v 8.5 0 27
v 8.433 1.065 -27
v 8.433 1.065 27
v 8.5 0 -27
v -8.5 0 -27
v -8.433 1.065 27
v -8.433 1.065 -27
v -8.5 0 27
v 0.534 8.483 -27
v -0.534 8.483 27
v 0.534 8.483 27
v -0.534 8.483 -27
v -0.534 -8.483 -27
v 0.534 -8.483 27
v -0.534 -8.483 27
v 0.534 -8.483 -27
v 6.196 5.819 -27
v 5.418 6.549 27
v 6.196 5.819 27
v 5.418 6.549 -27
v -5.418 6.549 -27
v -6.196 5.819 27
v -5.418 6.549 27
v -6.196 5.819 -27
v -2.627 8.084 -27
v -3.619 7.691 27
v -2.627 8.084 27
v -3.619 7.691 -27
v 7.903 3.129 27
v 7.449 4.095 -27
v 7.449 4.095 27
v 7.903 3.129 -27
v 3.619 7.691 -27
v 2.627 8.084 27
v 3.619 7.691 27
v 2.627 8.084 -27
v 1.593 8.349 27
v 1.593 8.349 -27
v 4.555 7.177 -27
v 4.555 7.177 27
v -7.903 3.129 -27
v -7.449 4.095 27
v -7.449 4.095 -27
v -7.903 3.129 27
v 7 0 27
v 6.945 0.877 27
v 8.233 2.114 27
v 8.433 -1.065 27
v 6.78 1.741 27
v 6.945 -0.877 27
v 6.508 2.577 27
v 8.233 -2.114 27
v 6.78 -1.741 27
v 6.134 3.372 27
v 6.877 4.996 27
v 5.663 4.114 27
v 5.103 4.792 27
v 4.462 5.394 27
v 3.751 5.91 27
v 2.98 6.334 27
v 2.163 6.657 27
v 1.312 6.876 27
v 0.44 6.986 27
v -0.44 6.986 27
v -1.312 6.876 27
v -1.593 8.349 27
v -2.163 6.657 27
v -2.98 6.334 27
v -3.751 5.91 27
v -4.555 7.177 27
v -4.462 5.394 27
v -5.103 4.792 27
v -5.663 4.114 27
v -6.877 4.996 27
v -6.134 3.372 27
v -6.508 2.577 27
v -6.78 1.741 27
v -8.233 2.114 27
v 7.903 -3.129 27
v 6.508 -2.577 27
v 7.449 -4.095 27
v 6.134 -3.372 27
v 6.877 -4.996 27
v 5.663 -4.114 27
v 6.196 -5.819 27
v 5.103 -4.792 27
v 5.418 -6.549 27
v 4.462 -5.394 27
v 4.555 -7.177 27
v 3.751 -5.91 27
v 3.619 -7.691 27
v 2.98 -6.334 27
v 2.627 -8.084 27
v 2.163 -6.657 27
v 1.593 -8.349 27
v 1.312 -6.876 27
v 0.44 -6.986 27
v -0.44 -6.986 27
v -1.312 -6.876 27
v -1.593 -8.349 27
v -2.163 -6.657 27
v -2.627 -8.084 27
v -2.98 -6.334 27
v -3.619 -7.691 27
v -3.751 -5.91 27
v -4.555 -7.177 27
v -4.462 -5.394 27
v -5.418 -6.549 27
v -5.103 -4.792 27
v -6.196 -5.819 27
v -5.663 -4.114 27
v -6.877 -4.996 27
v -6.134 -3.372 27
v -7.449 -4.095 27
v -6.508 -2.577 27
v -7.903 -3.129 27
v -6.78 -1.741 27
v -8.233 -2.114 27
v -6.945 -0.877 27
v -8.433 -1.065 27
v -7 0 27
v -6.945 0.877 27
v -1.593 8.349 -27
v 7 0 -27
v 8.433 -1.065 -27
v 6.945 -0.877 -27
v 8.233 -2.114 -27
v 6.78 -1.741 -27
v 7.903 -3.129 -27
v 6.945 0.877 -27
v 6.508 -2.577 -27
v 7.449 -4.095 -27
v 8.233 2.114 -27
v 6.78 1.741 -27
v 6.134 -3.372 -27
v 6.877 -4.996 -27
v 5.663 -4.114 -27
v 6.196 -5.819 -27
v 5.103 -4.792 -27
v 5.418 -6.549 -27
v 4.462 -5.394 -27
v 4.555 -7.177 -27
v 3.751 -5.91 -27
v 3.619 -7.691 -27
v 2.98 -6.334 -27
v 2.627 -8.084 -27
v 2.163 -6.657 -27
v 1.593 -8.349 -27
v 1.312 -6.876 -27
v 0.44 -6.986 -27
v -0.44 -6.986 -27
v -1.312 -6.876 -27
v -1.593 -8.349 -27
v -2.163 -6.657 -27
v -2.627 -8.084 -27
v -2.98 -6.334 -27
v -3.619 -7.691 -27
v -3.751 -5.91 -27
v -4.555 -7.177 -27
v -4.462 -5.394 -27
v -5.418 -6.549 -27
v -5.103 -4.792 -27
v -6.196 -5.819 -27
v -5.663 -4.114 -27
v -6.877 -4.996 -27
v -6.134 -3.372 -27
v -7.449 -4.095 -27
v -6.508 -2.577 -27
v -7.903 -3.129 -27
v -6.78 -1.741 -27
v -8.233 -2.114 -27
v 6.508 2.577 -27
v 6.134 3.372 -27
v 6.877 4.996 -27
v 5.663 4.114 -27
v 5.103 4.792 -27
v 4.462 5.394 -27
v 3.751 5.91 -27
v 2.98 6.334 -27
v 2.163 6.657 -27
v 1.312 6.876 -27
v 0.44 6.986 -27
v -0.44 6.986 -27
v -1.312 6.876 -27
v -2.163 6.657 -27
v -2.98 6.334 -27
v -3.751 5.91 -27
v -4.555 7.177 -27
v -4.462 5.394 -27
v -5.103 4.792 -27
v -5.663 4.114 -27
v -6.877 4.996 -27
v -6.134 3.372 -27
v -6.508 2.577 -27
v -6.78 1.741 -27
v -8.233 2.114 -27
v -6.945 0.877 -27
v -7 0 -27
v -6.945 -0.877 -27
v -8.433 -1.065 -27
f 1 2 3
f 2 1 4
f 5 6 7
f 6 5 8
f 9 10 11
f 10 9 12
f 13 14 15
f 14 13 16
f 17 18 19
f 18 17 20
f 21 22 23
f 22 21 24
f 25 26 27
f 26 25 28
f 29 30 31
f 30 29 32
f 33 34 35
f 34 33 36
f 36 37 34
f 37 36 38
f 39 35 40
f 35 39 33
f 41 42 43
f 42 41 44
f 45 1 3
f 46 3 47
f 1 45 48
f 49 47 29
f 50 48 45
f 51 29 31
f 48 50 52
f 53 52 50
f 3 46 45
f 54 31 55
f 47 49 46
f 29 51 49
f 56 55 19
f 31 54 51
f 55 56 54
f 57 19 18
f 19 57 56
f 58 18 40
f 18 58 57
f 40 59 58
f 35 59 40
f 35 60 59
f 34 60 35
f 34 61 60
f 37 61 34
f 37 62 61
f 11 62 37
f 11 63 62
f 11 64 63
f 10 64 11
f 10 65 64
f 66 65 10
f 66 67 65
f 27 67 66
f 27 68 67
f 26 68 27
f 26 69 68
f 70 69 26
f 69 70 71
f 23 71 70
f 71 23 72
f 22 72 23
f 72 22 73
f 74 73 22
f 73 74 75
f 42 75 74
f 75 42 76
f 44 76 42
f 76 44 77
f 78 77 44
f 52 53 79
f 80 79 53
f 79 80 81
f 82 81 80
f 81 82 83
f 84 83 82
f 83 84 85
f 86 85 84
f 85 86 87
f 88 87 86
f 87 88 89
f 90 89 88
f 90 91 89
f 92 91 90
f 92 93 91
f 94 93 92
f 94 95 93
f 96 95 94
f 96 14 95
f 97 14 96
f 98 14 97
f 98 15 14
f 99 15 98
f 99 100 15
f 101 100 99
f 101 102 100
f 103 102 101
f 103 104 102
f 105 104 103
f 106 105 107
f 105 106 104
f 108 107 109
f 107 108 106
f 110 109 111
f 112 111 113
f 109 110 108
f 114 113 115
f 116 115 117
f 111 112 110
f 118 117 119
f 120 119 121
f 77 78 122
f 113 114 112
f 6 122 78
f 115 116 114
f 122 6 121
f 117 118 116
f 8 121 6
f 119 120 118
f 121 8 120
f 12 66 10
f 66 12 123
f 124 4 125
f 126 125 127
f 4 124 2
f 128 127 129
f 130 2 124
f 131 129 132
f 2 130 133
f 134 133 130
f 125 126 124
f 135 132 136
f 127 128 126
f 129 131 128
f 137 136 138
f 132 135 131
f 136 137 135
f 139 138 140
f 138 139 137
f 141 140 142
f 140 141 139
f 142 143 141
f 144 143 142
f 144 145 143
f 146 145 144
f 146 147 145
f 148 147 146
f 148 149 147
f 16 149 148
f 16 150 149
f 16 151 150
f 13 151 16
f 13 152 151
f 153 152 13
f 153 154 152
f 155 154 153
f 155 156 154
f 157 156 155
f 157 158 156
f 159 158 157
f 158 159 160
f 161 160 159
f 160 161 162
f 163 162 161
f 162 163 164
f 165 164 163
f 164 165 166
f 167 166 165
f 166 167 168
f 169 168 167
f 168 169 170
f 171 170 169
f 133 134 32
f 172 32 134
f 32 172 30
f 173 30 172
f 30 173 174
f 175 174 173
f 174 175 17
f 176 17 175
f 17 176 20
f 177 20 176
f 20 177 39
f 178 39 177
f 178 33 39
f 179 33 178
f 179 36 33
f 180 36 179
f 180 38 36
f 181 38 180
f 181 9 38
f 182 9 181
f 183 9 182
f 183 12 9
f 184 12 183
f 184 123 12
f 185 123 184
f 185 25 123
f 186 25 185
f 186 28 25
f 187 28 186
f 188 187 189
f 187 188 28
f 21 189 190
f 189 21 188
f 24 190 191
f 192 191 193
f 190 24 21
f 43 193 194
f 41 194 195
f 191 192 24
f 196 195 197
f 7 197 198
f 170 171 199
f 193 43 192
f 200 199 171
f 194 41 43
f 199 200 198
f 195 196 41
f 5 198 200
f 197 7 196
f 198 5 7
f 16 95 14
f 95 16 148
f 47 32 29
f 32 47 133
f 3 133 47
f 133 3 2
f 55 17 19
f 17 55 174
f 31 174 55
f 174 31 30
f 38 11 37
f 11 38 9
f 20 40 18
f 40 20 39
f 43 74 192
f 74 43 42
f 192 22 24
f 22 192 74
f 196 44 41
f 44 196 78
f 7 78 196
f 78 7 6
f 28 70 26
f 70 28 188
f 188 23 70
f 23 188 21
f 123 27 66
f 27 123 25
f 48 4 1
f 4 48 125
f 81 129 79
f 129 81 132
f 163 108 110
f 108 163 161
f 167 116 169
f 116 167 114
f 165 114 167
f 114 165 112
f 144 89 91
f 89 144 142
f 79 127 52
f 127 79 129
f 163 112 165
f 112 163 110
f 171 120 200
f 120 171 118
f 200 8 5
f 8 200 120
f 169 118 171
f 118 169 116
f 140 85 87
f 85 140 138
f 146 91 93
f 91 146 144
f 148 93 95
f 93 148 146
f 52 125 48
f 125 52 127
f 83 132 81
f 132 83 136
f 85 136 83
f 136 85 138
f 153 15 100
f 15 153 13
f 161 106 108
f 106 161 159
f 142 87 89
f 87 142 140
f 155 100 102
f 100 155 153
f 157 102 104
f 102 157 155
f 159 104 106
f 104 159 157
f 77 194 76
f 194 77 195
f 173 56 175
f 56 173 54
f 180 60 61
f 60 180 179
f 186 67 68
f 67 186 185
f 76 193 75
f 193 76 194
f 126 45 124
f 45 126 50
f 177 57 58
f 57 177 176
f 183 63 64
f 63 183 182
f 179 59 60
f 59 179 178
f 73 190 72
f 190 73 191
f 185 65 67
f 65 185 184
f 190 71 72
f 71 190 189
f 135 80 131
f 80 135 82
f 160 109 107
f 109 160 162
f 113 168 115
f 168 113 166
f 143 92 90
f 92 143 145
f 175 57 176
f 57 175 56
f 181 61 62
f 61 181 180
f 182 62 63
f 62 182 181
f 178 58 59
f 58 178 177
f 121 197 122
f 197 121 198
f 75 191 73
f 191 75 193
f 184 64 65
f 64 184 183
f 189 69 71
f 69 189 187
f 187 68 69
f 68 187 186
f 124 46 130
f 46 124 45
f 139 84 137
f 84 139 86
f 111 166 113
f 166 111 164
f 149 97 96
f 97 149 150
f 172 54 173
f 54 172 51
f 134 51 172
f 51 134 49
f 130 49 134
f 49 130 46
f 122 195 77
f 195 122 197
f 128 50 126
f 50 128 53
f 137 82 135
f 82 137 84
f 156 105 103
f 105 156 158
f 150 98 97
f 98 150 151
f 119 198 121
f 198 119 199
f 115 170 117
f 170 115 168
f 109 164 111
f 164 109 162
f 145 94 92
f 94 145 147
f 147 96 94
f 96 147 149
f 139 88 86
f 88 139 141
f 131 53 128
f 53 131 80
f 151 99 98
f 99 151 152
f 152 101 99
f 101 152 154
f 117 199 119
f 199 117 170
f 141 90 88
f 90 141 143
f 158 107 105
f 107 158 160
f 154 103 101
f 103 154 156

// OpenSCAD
$fn = 50;


difference() {
	union() {
		translate(v = [0, 0, -27.0000000000]) {
			cylinder(h = 54, r = 8.5000000000);
		}
	}
	union() {
		translate(v = [0, 0, -100.0000000000]) {
			cylinder(h = 200, r = 7);
		}
	}
}
